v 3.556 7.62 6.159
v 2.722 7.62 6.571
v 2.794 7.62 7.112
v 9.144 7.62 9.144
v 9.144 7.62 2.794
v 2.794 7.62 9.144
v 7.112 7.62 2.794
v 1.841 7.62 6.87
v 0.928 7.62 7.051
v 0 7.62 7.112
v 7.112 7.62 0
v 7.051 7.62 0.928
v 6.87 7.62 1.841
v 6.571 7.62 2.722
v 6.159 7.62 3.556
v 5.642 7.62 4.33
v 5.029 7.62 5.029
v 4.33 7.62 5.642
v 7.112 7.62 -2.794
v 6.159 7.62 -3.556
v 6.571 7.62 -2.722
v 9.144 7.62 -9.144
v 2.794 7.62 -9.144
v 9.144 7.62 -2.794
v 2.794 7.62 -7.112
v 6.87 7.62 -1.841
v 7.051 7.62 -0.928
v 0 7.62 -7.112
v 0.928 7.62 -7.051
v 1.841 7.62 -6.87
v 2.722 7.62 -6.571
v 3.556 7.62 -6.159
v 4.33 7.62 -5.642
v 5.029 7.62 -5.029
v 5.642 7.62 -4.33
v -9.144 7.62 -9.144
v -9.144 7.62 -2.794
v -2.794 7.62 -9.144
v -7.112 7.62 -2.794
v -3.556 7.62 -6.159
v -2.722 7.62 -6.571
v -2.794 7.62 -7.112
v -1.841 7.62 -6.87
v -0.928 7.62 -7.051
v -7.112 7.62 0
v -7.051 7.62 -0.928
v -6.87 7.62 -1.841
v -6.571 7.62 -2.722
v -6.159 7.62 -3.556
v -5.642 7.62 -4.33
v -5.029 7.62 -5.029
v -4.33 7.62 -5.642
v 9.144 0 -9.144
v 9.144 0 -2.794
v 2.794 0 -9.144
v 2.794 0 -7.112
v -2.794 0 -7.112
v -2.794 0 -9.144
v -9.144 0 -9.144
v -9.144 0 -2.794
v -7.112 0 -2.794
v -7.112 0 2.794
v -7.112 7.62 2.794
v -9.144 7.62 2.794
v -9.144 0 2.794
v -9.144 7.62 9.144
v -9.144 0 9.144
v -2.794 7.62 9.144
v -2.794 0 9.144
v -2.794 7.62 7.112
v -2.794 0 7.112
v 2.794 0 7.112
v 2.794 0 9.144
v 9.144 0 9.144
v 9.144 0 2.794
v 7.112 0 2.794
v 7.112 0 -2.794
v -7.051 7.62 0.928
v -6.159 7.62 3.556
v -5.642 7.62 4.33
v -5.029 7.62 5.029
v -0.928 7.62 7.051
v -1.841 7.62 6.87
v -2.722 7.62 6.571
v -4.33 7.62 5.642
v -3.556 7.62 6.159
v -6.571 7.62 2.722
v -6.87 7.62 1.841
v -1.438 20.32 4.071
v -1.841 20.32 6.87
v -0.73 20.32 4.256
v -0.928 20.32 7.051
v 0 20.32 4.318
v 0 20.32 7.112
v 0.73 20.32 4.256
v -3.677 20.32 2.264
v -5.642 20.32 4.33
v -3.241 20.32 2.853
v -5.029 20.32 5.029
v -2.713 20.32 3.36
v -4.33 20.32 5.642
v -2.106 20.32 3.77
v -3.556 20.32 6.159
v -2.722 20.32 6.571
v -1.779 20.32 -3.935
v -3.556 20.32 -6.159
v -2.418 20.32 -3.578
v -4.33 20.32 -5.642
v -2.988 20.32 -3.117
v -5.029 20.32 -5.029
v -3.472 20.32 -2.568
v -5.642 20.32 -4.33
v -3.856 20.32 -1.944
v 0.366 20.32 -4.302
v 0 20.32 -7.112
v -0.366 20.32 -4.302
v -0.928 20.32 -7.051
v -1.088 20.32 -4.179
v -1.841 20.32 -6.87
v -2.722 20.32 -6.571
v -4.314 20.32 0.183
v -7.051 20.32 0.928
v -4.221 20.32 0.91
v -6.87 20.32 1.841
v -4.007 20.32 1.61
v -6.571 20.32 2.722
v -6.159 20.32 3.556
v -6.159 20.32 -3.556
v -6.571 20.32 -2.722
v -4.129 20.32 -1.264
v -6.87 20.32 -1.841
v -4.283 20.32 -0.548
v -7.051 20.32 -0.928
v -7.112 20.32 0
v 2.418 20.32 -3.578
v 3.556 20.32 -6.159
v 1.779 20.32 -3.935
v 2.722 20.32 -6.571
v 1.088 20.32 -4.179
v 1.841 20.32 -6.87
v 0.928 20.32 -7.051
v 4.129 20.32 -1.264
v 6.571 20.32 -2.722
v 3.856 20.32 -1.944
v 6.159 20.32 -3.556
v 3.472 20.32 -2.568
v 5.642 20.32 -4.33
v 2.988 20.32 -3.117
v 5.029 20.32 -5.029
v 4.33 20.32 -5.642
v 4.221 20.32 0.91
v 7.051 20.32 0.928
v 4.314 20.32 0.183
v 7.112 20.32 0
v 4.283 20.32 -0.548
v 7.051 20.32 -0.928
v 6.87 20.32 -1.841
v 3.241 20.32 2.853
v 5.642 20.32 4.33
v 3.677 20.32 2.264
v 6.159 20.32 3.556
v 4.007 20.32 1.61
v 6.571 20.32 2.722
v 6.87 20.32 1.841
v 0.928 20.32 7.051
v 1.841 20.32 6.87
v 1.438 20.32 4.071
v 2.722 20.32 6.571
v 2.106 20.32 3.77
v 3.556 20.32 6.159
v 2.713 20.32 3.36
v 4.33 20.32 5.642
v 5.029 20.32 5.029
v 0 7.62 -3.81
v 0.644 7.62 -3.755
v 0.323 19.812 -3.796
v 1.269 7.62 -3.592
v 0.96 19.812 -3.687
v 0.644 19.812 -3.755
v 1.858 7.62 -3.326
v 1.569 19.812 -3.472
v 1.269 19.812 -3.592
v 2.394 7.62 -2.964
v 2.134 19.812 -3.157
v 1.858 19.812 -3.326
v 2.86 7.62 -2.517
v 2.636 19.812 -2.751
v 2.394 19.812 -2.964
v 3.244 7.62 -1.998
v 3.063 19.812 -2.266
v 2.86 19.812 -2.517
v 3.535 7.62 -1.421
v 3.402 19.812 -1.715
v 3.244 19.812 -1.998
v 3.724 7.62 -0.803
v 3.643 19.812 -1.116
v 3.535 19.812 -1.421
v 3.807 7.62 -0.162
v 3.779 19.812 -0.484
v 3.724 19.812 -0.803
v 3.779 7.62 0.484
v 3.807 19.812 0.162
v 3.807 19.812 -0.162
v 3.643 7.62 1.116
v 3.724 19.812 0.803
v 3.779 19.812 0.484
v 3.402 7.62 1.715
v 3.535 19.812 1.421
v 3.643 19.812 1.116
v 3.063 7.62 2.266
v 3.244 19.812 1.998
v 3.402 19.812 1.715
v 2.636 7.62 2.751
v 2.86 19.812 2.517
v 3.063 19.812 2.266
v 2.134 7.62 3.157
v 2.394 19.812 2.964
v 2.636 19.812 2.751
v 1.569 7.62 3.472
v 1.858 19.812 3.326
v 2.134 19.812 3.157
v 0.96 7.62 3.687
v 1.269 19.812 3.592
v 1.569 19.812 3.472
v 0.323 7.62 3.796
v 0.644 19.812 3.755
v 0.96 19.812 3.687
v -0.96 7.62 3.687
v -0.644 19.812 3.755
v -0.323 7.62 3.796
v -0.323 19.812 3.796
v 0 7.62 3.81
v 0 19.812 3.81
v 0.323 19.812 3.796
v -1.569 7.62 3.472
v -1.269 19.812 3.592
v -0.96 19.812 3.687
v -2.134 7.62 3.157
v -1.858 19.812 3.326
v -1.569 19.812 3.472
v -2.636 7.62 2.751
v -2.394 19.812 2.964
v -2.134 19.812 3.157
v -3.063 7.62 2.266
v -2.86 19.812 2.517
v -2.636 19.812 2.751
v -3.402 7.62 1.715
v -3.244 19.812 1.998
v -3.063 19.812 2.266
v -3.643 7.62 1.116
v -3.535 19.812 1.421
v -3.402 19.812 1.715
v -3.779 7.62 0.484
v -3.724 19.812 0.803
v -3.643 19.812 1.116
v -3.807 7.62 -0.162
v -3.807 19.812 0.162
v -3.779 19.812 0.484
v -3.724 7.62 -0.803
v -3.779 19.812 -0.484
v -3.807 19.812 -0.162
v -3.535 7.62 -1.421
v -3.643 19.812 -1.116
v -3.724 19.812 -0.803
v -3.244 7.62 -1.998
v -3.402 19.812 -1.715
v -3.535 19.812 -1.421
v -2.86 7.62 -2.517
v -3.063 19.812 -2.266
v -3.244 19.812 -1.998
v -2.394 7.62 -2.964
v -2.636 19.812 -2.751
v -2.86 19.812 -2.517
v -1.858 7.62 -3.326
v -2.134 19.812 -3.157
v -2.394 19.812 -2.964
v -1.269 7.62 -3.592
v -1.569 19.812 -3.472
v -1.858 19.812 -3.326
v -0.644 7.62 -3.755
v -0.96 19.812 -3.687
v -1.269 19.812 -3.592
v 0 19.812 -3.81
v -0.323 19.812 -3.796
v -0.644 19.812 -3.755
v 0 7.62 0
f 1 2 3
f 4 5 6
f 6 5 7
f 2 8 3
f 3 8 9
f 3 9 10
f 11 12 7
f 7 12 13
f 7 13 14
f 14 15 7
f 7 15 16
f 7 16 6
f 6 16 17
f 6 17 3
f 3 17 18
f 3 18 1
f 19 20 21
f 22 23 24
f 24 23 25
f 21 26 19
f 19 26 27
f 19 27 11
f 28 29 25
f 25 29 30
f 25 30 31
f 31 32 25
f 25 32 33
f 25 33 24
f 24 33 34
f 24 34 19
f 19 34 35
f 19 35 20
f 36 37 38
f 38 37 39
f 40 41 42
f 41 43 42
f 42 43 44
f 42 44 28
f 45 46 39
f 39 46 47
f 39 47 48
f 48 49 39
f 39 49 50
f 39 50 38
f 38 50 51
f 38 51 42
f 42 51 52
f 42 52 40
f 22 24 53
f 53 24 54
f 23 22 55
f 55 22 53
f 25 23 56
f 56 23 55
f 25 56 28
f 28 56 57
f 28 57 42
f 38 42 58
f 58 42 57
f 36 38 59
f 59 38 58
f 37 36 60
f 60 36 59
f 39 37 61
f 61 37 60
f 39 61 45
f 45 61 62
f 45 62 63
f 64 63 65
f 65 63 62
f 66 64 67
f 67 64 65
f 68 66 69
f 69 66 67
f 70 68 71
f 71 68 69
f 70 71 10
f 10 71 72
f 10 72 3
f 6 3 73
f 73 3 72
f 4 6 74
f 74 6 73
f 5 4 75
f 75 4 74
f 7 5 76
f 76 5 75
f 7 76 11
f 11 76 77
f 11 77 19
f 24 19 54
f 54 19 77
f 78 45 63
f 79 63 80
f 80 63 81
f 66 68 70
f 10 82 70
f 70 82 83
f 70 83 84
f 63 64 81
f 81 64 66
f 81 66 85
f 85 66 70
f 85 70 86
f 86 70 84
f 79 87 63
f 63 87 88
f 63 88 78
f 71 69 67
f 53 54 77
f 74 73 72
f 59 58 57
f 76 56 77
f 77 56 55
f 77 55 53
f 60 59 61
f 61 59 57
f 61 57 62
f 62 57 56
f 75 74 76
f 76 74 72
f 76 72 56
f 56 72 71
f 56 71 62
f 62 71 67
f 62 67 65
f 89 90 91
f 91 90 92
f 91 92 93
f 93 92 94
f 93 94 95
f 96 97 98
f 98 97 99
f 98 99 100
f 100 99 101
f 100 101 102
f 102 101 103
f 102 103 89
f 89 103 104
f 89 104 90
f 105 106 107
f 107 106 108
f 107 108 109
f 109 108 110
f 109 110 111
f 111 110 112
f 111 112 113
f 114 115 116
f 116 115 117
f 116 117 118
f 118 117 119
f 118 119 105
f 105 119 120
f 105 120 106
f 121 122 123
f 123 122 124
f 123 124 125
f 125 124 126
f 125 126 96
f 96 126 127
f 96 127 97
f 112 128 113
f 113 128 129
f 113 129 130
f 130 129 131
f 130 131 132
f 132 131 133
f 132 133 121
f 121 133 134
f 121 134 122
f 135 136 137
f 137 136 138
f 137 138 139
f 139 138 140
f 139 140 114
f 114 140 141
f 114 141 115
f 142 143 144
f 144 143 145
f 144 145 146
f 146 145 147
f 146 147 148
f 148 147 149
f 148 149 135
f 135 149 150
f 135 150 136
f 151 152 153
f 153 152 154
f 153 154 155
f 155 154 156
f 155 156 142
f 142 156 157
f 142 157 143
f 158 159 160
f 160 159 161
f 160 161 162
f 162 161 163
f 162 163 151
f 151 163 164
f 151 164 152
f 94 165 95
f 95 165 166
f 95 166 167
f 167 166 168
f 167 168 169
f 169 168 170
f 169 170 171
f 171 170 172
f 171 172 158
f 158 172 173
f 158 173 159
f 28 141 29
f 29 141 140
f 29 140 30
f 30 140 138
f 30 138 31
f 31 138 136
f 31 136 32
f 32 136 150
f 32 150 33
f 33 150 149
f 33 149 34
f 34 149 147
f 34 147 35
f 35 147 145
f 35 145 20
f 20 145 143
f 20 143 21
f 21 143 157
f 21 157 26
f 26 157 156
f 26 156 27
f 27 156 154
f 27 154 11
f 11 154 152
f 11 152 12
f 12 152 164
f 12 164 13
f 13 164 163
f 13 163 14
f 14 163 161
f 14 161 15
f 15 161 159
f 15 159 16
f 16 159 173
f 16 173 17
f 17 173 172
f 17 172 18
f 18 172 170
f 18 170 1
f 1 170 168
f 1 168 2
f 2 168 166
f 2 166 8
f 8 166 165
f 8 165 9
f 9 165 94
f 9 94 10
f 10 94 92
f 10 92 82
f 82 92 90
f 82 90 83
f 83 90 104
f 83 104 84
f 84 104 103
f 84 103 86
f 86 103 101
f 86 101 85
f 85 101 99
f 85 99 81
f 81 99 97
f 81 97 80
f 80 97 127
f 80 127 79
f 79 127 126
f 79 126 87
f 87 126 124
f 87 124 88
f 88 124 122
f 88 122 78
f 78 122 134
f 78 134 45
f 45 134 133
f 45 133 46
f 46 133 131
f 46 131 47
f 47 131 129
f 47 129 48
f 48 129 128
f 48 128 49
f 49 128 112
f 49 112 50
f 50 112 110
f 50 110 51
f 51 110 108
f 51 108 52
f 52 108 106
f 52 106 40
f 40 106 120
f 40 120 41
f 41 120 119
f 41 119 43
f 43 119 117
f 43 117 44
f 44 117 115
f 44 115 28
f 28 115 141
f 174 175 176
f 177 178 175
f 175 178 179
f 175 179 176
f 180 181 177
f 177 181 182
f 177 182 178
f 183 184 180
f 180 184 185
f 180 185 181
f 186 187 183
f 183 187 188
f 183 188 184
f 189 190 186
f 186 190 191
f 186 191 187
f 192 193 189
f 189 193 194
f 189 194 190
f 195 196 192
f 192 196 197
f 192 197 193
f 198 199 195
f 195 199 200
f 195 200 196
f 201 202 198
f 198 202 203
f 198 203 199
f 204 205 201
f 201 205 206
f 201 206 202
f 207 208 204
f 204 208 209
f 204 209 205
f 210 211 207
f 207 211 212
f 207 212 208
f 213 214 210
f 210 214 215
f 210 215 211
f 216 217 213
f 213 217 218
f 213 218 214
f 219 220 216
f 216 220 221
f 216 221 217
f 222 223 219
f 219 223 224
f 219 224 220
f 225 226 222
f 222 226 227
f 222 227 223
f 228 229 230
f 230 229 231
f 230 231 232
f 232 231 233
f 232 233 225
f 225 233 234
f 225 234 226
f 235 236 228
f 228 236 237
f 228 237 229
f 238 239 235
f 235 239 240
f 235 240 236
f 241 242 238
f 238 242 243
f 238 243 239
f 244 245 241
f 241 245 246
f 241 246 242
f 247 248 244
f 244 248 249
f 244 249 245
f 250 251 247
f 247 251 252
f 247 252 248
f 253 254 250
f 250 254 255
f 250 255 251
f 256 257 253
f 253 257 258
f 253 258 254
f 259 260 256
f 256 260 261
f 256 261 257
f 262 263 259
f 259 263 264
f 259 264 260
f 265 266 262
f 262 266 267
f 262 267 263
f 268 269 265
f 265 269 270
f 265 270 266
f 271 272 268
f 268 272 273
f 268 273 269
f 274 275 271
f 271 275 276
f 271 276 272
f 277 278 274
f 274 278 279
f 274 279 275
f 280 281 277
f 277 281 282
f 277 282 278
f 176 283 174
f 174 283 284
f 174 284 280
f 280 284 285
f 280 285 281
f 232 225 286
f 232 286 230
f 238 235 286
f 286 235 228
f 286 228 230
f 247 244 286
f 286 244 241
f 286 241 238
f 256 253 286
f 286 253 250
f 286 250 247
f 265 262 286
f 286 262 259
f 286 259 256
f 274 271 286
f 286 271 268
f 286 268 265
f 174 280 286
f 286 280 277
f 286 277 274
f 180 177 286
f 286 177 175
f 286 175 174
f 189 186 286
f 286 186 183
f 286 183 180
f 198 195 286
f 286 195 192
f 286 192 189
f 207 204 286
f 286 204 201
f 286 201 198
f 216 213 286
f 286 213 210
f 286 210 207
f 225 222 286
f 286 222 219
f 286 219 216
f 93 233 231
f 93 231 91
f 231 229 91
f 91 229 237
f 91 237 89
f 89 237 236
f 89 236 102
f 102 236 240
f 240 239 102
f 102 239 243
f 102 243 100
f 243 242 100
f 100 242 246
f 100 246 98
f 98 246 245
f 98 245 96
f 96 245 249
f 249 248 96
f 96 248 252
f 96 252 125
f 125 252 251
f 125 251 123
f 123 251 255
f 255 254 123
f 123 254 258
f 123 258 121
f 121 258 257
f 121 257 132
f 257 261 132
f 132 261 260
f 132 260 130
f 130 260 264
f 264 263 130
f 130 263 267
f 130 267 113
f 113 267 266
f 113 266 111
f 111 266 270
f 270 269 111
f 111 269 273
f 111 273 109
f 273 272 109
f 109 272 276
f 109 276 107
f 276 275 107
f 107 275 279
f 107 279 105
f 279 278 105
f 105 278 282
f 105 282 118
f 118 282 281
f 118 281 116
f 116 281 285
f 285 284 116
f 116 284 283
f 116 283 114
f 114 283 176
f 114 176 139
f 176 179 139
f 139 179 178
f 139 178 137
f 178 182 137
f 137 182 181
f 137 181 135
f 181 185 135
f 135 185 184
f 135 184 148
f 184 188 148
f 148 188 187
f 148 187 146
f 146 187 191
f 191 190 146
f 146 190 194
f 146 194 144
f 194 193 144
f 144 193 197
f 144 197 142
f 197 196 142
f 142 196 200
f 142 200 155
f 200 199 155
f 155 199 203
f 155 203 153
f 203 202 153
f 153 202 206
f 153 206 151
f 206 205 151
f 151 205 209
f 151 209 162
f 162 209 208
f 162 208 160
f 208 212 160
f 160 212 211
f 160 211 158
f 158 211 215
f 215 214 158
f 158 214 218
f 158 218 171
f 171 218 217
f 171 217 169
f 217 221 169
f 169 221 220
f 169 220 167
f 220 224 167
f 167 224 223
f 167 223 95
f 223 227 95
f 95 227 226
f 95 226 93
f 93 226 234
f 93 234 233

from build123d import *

# Parameters (mm, degrees)
BOSS_EXTRUDE1_DEPTH = 7.62
SKETCH2_R           = 7.112
SKETCH2_R_2         = 3.81
BOSS_EXTRUDE2_DEPTH = 12.7
CHAMFER1_SIZE       = 0.508


with BuildPart() as part:
    # Sketch1 → Boss-Extrude1 (new body)
    with BuildSketch(Plane(origin=(0, 0, 0), x_dir=(1, 0, 0), z_dir=(0, 1, 0))):
        Polygon((9.144, 2.794), (7.112, 2.794), (7.112, -2.794), (9.144, -2.794), (9.144, -9.144), (2.794, -9.144), (2.794, -7.112), (-2.794, -7.112), (-2.794, -9.144), (-9.144, -9.144), (-9.144, -2.794), (-7.112, -2.794), (-7.112, 2.794), (-9.144, 2.794), (-9.144, 9.144), (-2.794, 9.144), (-2.794, 7.112), (2.794, 7.112), (2.794, 9.144), (9.144, 9.144), align=None)
    extrude(amount=BOSS_EXTRUDE1_DEPTH)

    # Sketch2 → Boss-Extrude2 (add)
    with BuildSketch(Plane(origin=(0, 7.62, 0), x_dir=(1, 0, 0), z_dir=(0, 1, 0))):
        with Locations(Location((0, 0, 0), (0, 0, 270))):
            Circle(SKETCH2_R)
        with Locations(Location((0, 0, 0), (0, 0, 270))):
            Circle(SKETCH2_R_2, mode=Mode.SUBTRACT)
    extrude(amount=BOSS_EXTRUDE2_DEPTH)

    # Chamfer1
    chamfer1_edges = [part.edges().sort_by_distance(p)[0] for p in [
        (0, 20.32, -3.81),
    ]]
    chamfer(chamfer1_edges, length=CHAMFER1_SIZE)


solid = part.part
